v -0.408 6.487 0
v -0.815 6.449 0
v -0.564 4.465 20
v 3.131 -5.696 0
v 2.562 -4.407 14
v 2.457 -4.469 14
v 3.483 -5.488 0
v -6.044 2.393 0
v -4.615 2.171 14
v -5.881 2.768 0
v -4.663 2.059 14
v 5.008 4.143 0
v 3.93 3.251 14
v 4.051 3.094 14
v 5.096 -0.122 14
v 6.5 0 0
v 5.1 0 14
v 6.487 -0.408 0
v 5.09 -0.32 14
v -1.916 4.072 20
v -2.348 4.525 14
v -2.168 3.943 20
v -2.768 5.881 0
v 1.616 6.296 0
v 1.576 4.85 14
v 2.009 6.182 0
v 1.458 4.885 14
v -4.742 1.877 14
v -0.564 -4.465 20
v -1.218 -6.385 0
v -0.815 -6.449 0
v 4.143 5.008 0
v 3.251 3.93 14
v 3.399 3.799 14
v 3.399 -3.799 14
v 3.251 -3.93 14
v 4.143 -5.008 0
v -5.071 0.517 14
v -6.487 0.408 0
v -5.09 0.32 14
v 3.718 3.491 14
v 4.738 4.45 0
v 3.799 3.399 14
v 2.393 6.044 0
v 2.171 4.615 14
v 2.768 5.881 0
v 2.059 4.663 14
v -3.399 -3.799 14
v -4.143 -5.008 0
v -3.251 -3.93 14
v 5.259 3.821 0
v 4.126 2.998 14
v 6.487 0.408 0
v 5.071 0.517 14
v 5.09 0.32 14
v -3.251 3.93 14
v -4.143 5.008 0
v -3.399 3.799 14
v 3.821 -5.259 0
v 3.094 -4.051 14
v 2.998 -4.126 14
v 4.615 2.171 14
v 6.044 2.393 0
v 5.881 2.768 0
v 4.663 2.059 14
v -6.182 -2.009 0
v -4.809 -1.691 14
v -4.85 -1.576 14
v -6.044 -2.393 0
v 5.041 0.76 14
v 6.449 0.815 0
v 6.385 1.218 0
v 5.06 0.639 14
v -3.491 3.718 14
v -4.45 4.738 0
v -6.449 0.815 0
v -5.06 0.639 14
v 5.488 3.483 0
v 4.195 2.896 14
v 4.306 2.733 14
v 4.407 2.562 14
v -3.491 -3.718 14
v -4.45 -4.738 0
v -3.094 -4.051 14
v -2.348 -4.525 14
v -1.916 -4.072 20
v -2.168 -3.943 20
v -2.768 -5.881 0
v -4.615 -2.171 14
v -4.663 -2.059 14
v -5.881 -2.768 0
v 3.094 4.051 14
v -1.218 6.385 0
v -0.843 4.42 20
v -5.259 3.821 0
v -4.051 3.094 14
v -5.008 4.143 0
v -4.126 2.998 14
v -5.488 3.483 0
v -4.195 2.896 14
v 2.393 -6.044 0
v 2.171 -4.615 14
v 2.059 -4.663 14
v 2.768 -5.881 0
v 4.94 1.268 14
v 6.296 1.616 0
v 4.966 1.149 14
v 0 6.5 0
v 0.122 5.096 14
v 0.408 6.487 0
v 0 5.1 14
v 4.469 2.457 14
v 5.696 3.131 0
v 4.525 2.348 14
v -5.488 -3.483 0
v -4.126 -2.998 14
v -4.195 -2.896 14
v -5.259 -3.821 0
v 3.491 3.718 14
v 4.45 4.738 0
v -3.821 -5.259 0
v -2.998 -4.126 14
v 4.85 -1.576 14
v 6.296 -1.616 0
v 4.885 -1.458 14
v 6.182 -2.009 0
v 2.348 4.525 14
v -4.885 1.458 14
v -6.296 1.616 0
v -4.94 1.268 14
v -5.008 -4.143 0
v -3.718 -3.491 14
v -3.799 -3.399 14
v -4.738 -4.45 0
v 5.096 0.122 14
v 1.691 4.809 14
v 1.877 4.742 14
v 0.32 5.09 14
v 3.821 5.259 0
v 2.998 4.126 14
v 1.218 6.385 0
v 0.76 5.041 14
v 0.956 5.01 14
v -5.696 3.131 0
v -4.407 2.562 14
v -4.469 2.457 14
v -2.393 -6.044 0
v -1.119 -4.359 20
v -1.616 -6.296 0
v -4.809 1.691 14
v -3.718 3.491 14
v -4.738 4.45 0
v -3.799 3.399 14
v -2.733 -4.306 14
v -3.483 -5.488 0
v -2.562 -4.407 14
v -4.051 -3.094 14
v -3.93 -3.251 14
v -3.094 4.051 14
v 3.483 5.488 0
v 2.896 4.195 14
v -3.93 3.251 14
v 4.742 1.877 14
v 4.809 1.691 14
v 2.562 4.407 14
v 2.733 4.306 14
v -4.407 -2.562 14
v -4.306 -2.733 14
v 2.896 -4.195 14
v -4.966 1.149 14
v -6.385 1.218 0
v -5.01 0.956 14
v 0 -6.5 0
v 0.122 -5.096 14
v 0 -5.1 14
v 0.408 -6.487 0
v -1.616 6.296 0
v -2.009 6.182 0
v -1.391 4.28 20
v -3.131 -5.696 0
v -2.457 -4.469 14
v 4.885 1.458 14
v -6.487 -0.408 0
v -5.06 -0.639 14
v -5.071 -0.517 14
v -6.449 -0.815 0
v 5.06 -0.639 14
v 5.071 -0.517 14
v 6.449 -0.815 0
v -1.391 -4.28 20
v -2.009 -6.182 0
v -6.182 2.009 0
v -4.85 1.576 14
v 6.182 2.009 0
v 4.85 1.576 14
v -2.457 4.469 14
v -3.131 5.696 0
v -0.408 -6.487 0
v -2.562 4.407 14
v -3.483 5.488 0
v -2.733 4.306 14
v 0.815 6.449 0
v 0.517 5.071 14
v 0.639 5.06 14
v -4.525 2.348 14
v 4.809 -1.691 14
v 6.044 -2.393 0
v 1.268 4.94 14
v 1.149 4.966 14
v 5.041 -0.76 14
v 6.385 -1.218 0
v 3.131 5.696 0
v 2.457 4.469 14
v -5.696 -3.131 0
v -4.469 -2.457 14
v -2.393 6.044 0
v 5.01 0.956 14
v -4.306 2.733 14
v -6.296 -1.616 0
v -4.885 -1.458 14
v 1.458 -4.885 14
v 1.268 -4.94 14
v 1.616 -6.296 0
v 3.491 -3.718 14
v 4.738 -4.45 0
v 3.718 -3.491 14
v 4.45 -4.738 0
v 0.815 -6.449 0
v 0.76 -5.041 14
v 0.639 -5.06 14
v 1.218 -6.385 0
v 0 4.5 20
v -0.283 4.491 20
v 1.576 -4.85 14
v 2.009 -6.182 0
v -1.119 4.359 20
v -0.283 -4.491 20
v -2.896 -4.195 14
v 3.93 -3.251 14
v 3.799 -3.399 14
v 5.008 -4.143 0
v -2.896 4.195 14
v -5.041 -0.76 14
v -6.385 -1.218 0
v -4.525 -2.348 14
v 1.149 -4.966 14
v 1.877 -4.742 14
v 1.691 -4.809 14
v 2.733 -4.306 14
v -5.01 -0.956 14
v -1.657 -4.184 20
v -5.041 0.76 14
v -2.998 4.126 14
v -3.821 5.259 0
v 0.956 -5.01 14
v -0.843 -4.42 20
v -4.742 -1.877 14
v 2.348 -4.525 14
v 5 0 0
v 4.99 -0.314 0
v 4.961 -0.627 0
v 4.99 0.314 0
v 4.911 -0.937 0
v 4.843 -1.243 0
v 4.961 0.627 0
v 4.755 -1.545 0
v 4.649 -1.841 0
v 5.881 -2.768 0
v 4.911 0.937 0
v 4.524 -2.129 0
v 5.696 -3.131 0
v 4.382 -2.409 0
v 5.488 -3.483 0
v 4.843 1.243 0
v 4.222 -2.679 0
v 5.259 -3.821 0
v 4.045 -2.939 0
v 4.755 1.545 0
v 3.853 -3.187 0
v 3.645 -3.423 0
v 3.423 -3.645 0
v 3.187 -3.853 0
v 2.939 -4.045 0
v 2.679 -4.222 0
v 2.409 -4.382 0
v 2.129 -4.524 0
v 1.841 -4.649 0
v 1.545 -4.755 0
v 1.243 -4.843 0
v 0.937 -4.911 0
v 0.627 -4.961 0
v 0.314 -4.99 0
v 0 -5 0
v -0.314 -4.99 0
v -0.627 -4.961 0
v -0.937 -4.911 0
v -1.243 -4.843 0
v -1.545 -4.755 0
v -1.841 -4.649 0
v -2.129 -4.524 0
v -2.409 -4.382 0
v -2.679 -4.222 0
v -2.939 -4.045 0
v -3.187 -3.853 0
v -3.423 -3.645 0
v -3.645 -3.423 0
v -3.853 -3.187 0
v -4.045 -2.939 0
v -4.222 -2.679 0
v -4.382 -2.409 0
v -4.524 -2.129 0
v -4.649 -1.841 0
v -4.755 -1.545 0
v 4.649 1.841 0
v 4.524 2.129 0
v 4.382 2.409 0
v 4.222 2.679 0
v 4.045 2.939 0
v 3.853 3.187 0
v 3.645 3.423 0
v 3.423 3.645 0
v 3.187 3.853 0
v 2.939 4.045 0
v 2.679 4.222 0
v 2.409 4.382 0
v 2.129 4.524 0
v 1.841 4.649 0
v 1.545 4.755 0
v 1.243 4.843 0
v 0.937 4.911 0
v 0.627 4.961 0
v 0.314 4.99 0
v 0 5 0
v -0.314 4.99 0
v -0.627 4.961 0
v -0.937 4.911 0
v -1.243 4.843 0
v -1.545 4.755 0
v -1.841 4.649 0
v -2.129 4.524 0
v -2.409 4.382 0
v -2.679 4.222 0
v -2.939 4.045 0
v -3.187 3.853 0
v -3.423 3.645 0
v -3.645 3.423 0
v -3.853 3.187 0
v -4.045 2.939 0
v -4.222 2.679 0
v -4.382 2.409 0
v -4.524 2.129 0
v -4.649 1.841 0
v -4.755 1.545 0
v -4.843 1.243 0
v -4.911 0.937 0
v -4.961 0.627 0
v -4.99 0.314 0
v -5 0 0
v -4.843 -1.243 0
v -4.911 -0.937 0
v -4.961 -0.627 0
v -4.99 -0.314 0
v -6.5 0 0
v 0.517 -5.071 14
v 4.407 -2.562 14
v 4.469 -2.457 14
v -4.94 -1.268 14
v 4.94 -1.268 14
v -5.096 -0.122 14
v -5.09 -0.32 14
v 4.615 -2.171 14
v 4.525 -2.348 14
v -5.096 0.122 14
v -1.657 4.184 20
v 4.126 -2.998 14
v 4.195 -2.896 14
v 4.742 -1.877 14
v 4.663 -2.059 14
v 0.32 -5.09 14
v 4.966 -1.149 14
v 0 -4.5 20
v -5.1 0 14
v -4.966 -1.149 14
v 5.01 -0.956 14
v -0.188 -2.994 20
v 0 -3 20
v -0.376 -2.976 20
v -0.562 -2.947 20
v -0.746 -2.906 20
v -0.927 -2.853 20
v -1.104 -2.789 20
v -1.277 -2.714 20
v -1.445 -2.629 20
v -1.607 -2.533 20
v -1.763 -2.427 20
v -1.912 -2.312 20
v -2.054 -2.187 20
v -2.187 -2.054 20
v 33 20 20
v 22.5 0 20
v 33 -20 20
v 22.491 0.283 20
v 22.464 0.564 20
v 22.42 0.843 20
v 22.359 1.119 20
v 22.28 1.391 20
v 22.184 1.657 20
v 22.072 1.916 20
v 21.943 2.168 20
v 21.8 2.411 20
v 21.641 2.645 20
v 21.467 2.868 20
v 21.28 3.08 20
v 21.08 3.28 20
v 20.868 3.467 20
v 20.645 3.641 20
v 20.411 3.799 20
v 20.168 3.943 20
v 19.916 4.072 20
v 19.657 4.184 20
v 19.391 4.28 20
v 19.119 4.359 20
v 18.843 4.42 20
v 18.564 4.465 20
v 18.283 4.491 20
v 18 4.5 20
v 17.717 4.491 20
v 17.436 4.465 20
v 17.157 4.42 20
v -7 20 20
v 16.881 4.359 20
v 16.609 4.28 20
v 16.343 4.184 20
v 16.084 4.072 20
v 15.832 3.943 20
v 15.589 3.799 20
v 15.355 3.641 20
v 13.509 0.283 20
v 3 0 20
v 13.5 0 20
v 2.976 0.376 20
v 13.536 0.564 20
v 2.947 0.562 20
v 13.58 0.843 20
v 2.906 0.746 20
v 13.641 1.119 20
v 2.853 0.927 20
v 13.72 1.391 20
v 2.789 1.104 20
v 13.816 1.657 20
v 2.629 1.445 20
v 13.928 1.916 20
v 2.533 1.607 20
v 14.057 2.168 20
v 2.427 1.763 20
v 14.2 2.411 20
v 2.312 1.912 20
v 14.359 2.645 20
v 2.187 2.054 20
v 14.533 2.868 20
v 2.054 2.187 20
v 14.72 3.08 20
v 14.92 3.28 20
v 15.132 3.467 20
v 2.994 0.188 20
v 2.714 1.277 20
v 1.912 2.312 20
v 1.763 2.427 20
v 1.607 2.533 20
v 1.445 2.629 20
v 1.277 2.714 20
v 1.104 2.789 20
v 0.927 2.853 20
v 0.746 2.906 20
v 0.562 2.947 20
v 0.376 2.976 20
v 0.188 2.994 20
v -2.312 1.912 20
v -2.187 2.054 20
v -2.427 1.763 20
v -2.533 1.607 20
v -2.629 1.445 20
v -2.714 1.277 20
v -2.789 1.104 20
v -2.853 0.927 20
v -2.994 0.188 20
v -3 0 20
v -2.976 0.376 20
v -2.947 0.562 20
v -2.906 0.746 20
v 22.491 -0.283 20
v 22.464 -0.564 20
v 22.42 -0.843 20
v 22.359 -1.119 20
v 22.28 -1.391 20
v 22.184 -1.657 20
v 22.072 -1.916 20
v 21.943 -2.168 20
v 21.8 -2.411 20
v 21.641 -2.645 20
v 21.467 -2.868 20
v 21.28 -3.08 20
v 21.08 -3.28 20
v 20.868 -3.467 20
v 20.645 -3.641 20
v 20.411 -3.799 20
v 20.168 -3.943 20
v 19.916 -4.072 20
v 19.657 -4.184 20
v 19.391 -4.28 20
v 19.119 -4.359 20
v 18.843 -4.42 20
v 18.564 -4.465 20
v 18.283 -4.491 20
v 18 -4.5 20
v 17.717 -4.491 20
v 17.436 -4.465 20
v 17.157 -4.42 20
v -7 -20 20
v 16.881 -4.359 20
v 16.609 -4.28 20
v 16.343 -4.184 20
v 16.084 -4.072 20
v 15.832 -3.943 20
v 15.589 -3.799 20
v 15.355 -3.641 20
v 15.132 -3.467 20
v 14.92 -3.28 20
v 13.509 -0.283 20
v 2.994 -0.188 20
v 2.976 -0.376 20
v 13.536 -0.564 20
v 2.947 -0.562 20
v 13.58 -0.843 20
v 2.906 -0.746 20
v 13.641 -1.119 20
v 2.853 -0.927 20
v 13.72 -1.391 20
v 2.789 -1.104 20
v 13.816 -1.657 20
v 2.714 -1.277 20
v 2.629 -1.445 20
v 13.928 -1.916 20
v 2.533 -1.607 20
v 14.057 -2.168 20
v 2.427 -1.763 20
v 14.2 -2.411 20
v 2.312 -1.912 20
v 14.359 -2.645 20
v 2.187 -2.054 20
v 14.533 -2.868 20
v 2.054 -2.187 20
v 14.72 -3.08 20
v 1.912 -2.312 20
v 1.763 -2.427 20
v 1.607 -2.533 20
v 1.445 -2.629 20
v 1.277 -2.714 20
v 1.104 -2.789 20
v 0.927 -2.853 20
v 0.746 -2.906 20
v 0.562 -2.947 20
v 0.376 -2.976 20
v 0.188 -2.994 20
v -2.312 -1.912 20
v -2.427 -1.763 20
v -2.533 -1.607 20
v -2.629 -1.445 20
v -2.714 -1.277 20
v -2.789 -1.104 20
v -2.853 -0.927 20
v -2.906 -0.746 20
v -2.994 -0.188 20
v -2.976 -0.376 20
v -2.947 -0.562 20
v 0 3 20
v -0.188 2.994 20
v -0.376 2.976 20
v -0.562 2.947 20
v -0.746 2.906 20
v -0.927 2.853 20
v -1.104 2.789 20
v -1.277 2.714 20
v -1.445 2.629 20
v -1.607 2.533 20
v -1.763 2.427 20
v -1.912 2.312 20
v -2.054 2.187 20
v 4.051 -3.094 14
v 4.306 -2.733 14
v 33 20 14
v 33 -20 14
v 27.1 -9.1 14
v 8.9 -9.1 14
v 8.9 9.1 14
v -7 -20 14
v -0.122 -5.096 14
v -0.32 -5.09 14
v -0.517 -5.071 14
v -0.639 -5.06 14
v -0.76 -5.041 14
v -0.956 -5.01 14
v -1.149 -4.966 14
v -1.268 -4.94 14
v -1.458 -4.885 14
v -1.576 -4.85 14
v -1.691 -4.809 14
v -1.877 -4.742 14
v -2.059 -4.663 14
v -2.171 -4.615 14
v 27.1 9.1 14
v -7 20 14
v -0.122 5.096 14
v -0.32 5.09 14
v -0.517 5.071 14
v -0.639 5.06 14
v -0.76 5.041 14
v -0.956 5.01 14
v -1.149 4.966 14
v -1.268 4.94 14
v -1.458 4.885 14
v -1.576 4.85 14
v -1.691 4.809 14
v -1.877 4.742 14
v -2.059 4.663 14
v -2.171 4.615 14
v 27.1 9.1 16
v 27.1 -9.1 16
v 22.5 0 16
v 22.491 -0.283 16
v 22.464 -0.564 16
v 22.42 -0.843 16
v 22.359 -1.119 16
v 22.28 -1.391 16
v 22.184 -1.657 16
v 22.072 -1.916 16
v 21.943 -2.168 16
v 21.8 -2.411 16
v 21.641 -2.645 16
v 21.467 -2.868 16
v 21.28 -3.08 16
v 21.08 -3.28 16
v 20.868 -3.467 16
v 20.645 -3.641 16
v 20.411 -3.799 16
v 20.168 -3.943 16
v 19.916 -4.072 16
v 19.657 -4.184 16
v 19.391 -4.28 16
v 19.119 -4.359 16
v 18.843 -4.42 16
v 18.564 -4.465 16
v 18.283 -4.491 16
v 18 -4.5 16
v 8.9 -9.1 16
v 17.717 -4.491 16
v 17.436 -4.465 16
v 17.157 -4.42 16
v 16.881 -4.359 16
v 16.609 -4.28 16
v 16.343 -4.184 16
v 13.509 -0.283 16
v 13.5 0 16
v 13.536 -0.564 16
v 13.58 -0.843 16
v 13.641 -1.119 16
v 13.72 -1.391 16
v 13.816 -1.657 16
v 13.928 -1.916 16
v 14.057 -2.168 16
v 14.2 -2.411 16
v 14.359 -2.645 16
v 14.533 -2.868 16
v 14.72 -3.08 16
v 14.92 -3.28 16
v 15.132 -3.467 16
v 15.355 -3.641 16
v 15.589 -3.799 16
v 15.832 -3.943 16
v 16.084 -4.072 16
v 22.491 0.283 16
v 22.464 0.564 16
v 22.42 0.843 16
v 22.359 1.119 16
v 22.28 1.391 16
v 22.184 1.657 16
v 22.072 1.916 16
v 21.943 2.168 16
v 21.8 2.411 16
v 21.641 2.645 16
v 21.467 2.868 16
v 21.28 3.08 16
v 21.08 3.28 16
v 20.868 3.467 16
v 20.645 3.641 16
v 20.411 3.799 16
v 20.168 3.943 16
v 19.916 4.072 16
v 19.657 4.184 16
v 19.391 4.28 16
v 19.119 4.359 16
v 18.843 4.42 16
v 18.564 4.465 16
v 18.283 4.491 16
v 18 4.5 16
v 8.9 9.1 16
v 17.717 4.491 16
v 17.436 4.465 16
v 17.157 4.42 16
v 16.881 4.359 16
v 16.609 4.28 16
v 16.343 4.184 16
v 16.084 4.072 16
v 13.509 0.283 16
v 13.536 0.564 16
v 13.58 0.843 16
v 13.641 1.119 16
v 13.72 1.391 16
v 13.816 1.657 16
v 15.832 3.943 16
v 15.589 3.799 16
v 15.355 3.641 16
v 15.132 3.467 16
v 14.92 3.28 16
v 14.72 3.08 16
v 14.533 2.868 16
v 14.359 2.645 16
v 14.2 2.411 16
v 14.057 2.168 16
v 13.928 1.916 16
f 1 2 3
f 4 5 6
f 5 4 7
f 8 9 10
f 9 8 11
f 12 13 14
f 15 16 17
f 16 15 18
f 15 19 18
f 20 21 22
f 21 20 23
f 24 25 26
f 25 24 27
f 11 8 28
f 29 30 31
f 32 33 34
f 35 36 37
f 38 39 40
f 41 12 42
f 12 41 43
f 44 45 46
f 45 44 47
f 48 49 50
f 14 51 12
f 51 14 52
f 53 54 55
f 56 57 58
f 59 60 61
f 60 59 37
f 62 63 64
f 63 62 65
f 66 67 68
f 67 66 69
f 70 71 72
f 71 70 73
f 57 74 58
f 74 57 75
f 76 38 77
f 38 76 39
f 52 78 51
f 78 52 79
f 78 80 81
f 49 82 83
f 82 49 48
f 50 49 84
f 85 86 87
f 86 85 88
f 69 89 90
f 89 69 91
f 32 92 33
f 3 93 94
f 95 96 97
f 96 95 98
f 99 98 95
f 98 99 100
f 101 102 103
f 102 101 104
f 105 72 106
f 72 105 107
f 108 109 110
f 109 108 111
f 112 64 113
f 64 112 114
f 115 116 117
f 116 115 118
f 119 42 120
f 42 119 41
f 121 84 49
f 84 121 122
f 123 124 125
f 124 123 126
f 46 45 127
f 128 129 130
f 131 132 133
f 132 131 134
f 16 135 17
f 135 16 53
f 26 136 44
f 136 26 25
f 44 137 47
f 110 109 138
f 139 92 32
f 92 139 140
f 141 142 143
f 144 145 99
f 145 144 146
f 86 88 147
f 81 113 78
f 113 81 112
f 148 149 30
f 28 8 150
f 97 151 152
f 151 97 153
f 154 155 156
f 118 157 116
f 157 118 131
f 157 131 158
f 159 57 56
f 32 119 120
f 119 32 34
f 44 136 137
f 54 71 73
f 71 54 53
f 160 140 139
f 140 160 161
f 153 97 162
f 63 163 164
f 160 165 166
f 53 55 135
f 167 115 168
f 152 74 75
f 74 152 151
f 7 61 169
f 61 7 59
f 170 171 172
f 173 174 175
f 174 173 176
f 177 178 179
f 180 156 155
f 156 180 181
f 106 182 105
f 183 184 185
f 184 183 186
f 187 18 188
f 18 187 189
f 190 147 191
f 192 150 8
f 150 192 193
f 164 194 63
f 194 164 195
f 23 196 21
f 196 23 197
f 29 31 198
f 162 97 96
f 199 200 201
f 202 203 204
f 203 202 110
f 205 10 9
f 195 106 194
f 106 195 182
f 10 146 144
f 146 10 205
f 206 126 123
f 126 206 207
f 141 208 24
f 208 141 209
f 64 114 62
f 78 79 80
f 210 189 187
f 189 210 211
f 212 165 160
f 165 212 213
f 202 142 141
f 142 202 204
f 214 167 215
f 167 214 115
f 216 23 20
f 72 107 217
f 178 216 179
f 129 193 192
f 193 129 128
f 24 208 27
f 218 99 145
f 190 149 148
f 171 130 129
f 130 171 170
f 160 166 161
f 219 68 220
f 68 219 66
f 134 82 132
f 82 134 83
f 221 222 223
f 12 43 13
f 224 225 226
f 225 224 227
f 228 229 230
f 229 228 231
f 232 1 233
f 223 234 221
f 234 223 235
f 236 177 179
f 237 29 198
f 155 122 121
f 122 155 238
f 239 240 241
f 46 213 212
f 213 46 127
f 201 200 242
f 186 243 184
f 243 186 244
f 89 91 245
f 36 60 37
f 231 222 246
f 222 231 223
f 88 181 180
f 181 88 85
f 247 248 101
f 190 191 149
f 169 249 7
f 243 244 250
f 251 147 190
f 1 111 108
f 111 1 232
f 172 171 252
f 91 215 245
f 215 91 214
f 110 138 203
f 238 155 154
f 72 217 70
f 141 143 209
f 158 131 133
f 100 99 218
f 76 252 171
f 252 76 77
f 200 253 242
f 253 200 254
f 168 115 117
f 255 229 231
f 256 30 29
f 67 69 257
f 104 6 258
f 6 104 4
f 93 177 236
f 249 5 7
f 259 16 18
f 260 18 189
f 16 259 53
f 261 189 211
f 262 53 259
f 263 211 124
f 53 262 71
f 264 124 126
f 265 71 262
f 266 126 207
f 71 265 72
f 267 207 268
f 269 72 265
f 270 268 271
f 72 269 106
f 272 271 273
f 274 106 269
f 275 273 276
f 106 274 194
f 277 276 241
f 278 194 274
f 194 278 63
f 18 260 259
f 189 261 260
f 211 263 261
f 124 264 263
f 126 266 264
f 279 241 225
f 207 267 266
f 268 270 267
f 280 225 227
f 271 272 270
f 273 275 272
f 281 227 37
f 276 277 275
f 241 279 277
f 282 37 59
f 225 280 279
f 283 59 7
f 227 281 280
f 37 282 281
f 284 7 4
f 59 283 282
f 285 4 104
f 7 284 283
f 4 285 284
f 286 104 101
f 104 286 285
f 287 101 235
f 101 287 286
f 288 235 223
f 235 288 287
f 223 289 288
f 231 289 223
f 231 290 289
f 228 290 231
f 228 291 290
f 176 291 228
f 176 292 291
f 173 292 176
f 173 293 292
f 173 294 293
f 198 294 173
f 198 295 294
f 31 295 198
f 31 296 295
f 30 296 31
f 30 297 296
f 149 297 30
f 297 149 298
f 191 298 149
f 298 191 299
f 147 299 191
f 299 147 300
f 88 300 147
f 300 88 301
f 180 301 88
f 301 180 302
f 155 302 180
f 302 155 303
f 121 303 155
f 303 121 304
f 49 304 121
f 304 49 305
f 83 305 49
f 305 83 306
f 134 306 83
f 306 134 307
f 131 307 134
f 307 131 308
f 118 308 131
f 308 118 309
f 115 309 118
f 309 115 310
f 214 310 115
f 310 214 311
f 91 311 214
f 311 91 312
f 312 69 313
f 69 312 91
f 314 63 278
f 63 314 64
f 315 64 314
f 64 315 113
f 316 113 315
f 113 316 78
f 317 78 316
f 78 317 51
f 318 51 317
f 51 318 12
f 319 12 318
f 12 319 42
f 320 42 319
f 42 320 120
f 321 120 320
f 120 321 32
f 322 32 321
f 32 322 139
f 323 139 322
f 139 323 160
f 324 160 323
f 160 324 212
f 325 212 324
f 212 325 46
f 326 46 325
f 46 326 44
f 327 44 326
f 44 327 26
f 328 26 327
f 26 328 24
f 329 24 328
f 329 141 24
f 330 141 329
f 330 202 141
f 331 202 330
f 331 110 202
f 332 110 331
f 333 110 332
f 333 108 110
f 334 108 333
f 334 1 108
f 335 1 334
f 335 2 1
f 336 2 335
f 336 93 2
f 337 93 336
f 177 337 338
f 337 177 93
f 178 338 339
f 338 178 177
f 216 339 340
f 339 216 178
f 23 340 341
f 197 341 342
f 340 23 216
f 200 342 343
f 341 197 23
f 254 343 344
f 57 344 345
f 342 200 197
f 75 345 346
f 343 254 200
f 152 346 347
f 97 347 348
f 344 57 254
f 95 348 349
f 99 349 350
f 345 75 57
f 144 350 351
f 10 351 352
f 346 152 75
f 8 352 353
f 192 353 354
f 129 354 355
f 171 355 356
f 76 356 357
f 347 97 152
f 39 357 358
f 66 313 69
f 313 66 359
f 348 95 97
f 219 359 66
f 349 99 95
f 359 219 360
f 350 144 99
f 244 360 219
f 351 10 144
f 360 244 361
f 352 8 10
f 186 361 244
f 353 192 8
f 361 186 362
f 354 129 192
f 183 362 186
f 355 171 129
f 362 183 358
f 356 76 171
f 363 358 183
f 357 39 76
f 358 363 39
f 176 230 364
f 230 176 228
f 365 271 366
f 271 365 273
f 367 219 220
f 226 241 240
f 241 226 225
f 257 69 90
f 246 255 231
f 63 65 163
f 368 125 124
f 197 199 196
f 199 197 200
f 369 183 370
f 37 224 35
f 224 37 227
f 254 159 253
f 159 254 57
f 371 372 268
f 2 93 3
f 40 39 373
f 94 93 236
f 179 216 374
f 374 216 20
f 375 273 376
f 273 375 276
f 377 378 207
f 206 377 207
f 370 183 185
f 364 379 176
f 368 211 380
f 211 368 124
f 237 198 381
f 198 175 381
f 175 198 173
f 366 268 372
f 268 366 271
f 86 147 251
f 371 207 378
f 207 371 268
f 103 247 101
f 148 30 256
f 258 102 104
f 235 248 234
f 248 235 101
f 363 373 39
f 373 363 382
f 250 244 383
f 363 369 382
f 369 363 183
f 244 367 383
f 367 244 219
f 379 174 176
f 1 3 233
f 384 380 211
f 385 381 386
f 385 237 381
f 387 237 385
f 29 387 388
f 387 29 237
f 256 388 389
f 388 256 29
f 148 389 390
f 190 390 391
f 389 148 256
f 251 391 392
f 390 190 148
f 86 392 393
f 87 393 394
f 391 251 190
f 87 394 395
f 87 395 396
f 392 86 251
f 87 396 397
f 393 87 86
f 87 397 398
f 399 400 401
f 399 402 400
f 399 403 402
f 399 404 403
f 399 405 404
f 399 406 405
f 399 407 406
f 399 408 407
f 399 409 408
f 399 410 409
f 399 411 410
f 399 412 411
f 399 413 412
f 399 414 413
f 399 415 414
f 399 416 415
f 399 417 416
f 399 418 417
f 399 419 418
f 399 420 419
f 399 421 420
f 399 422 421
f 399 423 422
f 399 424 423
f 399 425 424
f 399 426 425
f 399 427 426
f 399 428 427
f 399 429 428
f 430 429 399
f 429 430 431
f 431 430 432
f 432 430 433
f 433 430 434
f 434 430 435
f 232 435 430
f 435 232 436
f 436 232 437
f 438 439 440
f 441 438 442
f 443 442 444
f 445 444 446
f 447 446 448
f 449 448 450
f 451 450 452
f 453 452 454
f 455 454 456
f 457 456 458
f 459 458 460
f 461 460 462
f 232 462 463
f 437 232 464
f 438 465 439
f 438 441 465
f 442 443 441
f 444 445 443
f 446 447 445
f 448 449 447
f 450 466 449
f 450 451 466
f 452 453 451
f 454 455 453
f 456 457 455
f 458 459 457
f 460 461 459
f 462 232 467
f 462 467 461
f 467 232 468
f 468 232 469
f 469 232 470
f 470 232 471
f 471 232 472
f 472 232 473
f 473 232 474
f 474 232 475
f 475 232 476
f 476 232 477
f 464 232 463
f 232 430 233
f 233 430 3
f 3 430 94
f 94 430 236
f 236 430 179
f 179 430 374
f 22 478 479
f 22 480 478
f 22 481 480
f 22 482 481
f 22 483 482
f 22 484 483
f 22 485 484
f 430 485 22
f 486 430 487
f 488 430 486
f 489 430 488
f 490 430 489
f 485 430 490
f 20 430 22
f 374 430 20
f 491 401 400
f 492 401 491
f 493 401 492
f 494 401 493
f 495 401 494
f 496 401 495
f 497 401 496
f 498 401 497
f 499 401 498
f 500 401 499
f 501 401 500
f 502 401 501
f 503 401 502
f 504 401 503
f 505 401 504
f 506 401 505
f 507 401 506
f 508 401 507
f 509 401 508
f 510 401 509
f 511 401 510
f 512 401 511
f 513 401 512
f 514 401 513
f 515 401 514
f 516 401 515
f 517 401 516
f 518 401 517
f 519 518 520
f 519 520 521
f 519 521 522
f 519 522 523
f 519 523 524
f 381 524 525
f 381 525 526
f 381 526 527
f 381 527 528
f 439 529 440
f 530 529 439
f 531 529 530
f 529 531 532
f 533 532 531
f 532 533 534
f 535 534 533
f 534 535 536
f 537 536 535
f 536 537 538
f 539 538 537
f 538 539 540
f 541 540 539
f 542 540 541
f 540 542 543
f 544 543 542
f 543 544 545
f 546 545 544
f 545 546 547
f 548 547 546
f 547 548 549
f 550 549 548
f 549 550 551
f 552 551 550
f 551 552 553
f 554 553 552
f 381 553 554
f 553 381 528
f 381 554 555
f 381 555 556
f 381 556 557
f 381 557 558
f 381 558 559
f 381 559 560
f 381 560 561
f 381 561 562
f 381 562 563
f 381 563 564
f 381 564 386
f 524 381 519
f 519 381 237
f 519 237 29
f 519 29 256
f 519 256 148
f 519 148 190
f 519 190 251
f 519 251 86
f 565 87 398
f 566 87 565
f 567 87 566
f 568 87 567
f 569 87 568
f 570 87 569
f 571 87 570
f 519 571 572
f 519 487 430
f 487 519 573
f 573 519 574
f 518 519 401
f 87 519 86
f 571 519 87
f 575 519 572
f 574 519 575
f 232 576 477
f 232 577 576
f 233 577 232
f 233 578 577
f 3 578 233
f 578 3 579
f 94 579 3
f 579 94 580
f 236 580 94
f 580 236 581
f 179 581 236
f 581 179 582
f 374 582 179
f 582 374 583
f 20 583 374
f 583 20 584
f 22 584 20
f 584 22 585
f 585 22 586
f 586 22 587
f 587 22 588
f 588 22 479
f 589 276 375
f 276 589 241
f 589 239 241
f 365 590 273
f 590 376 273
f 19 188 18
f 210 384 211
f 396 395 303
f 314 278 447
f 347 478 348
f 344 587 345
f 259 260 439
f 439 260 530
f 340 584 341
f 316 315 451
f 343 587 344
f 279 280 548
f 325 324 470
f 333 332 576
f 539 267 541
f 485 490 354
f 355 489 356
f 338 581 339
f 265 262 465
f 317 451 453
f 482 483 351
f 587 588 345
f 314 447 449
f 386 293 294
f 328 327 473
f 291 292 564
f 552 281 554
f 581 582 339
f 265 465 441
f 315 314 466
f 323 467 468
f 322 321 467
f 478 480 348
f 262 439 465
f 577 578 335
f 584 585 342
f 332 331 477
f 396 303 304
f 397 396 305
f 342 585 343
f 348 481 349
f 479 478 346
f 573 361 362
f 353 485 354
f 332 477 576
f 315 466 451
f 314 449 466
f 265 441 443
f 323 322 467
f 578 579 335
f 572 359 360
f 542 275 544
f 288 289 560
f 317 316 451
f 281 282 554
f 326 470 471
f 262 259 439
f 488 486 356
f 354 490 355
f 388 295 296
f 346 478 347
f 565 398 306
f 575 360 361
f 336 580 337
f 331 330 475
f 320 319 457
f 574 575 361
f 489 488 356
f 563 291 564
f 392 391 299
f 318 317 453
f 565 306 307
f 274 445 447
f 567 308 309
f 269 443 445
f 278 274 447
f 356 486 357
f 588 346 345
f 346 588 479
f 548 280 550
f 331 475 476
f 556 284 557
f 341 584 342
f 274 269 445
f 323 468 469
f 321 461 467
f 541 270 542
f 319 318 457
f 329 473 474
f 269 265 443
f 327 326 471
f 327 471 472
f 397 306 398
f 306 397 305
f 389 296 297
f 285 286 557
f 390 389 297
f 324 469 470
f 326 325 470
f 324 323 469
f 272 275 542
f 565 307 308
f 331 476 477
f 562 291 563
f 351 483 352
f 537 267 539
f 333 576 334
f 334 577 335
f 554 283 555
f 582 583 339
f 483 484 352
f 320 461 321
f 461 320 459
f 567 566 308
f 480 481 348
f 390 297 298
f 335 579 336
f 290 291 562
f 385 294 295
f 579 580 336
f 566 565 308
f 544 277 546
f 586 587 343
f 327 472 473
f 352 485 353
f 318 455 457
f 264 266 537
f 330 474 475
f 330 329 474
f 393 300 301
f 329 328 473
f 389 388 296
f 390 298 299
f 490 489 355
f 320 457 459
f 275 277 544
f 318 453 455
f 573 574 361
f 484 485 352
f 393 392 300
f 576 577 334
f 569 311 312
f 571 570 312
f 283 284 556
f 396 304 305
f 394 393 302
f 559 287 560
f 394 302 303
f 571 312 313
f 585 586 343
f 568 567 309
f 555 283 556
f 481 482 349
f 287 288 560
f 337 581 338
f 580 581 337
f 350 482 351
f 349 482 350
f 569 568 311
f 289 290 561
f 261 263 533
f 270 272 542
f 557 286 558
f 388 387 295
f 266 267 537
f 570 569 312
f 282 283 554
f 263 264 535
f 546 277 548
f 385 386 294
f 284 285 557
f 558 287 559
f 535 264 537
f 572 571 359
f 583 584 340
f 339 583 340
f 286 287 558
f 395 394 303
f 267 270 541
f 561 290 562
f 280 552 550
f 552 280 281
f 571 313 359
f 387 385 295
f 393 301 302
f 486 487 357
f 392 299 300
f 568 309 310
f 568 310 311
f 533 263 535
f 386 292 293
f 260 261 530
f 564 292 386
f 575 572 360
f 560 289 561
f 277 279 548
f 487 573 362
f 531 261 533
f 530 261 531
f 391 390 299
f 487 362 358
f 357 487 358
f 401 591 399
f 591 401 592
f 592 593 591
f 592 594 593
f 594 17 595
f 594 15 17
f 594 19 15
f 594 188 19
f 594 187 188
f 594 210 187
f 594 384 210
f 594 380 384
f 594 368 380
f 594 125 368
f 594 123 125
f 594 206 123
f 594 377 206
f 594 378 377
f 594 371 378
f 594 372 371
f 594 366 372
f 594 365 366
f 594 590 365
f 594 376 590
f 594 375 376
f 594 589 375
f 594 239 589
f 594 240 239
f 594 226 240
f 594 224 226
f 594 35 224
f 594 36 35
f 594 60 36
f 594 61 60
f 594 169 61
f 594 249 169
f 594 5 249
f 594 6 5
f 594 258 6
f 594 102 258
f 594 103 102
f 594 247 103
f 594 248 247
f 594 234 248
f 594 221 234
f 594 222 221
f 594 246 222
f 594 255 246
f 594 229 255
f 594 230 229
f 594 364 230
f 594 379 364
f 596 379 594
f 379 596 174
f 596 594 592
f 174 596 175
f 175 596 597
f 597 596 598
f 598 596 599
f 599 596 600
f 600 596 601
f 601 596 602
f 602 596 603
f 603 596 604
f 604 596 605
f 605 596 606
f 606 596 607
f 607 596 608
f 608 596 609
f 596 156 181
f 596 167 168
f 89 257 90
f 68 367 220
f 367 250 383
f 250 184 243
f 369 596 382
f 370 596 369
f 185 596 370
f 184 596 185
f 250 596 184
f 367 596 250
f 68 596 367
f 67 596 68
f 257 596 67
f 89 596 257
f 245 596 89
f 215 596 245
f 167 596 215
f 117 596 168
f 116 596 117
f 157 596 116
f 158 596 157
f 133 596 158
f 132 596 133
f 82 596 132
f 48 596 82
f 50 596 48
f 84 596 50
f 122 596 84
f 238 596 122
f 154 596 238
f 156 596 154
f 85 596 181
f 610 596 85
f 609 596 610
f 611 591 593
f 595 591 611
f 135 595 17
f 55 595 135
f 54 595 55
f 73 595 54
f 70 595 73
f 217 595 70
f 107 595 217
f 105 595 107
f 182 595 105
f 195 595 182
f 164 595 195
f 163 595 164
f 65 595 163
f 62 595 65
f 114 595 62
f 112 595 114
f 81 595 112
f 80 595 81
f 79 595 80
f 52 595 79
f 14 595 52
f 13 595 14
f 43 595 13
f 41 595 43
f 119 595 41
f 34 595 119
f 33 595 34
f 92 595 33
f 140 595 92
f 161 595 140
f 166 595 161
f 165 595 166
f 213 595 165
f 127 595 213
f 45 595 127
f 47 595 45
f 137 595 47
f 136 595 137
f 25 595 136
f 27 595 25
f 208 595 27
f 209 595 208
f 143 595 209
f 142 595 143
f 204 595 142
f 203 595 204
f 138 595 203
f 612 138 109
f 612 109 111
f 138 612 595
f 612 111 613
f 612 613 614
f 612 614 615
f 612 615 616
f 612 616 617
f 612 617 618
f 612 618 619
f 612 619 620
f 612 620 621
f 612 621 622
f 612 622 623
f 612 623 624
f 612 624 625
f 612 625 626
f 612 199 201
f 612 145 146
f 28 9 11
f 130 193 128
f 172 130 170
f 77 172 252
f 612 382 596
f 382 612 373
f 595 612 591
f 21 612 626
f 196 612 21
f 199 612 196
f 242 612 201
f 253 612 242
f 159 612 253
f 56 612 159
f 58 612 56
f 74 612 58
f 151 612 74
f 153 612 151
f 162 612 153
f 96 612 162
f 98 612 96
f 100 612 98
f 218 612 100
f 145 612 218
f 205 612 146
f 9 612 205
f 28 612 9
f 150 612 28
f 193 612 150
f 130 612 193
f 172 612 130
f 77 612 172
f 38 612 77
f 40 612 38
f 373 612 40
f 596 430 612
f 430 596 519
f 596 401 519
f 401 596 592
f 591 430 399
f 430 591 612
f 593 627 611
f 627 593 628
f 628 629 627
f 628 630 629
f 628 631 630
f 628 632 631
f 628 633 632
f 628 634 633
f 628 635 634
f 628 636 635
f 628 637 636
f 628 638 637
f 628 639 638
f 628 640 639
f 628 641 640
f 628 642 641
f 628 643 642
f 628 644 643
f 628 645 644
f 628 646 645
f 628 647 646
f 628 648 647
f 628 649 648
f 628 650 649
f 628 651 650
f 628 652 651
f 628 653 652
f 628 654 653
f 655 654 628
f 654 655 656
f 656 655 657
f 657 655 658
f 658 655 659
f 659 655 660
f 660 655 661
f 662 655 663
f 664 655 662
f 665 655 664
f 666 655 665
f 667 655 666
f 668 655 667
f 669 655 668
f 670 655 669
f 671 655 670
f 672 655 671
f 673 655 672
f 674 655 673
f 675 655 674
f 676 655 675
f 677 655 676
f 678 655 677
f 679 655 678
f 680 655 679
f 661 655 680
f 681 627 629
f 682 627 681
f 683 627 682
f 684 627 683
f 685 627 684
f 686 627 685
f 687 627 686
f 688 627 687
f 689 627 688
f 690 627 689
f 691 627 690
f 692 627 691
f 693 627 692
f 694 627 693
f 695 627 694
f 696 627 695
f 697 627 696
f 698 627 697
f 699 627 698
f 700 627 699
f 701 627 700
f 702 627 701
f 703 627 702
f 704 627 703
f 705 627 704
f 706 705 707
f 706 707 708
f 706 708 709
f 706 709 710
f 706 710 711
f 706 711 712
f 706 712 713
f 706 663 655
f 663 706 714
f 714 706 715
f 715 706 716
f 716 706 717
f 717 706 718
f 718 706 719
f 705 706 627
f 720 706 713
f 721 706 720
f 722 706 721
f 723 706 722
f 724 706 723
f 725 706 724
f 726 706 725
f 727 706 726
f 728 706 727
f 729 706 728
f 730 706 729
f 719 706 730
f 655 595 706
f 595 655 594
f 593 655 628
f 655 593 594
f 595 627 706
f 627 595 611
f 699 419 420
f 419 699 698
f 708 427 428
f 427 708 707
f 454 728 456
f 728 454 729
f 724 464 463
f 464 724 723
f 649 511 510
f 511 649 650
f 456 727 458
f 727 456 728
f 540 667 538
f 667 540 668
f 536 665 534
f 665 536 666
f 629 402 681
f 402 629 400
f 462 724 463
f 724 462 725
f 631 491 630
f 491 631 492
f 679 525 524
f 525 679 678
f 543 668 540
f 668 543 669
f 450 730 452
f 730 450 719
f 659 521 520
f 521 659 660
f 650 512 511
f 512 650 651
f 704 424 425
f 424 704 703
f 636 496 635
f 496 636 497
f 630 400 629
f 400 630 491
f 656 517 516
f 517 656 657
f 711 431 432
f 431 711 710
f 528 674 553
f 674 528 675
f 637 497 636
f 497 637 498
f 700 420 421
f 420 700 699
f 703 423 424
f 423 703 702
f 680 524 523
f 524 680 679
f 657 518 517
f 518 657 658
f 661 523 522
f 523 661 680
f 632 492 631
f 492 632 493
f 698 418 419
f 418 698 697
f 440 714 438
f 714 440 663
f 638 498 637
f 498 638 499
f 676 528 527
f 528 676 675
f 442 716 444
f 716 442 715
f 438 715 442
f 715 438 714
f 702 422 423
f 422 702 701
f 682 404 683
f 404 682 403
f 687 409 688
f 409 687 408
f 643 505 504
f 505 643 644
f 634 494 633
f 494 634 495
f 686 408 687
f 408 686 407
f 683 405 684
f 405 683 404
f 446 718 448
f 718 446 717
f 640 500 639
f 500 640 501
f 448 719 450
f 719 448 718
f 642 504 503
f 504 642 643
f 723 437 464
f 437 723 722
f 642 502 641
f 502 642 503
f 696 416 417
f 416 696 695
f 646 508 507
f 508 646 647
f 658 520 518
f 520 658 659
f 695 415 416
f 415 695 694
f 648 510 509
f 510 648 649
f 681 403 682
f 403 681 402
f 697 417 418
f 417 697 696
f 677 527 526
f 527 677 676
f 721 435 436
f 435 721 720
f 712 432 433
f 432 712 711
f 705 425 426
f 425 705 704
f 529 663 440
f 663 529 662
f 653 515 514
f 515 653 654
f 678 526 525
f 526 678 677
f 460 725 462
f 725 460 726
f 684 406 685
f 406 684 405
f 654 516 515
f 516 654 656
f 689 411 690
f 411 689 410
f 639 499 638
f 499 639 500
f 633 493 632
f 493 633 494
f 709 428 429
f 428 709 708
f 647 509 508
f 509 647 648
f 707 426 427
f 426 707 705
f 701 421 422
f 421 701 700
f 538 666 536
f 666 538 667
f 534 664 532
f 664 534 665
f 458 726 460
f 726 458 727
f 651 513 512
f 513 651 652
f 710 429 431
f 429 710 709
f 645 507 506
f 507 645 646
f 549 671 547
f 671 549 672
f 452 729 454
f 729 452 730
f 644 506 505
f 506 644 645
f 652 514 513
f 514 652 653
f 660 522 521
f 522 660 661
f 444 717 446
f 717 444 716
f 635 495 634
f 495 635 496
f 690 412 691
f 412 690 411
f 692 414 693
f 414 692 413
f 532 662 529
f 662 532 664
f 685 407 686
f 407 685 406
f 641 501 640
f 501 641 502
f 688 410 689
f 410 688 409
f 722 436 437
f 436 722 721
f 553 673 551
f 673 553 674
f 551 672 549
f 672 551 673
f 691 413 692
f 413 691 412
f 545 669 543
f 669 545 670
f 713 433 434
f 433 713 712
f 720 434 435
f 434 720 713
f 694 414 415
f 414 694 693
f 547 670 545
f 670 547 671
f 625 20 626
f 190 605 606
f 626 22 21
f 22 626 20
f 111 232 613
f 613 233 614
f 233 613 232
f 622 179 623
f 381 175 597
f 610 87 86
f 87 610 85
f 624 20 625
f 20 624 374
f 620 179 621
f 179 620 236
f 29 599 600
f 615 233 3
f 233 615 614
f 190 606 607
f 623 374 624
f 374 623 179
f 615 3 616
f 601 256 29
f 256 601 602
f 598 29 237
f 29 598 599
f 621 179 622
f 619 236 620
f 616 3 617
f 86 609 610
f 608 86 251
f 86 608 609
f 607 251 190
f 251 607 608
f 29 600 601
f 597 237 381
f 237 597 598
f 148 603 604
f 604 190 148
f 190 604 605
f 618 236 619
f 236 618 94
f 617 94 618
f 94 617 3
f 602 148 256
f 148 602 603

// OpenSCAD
// Code shows generates complete Brymen holder for flexible water pipes.
// Print parts as seperate and glue together, see below.
$fn=100;

module pipe_mount() {
	translate([0, 0, -15]) rotate([90, 0, 0]) {
		translate([0, 0, -10]) {
			difference() {
				cylinder(h=20, r1=4.5, r2=6.5, center=true);
				cylinder(h=20, r1=3, r2=5, center=true);
			}
		}
	}
}
module pipe_mount_solid() {
	translate([0, 0, -15]) rotate([90, 0, 0]) {
		translate([0, 0, -10]) {
			difference() {
				cylinder(h=20, r1=4.5, r2=6.5, center=true);
			}
		}
	}
}

module cam_mount() {
	difference() {
		translate([15, 0, 0]) cube( size = [40, 40, 6], center = true);
		translate([20, 0, 3]) cube( size = [18.2, 18.2, 4], center = true);
		translate([20, 0, 0]) cylinder(h=8, r=4.5, center = true);
		translate([2, 15, 17]) rotate([-90, 0, 0]) pipe_mount_solid();
	}
}

translate([0, -15, 0]) rotate([90, 0, 0]) pipe_mount();
translate([-2, 0, 17]) rotate([180, 0, 0]) cam_mount();

// vim: ts=2:sw=2:noet:commentstring=//\ %s
